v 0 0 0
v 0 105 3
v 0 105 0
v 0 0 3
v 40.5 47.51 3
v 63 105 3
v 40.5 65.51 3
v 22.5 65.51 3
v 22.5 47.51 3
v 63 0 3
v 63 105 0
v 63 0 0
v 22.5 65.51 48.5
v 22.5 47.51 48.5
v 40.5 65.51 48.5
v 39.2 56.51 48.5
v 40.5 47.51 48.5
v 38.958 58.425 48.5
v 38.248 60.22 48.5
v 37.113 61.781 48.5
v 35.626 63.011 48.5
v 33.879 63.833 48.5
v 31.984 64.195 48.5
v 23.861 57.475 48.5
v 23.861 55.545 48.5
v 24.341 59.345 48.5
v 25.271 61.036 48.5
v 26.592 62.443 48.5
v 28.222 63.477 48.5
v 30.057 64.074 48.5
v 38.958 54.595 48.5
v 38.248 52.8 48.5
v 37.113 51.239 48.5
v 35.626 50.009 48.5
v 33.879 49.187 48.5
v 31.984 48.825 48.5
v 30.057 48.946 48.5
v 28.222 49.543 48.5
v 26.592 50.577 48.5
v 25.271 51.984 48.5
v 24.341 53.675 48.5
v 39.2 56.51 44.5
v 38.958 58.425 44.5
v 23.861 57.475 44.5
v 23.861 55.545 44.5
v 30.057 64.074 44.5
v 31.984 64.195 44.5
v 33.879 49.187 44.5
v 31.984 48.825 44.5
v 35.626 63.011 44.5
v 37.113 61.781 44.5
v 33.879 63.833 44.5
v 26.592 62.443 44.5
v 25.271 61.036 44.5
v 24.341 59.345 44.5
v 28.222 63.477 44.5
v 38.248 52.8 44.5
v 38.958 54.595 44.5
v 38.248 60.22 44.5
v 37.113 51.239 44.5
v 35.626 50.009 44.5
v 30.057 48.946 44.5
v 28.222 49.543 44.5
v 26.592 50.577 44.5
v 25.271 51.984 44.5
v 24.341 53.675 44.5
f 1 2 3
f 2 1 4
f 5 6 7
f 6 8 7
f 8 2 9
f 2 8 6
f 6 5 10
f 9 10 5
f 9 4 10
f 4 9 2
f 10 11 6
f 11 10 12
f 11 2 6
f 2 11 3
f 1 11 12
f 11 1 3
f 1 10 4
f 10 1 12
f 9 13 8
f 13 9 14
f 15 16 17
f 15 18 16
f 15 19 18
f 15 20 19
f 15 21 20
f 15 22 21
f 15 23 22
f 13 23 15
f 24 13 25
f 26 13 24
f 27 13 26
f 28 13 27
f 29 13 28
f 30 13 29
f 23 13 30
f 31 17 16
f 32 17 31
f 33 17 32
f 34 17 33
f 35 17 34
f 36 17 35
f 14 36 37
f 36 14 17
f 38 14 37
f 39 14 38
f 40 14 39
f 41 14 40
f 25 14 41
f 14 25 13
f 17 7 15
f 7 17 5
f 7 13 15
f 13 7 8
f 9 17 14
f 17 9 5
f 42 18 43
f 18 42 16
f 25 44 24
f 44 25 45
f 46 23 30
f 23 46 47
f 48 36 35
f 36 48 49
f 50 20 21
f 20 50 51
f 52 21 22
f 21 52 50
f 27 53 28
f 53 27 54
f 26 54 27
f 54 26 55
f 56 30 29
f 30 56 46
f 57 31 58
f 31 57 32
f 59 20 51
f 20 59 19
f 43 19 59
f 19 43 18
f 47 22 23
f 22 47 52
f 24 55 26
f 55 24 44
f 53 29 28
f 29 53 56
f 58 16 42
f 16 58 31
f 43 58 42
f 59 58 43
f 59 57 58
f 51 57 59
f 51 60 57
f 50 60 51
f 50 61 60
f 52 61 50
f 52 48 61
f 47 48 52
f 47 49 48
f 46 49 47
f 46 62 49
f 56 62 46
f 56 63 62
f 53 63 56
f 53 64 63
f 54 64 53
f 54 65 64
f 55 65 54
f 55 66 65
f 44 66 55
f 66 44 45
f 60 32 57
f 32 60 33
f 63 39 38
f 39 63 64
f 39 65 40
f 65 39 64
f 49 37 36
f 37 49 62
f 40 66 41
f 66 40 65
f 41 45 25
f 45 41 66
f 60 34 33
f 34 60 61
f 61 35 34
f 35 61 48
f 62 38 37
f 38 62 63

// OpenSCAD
length = 63;
width = 105;
height = 3;

//Based on magnet size:
pillarSideLength = 18;
pillarSideOffset = .5;

magnetBaseInnerDiameter = 15.4;
magnetHeight = 4.0;

//inox guard x 6, 47.87 x 31.97, base 29.36
//bandit guard x 6, 36.67 x 27.75, base 24.43
//city guard x 6, 38.45 x 24.02, base 21.30
//single token 2.0

magnetOffset = 43.01;


spaceBetweenCircles = 2;
wallThickness = spaceBetweenCircles;
pillarHeight = 15 * 3 + .5 + height;

difference() {
union(){
    cube([length, width, height]);


//----------------------------------


            
//---------------------------------------------------------------------
    
          

//----------------------------------------
   
    translate([length/2 - ((pillarSideLength)/2), magnetOffset + wallThickness * 2 + pillarSideOffset, 0])
        cube([pillarSideLength, pillarSideLength, pillarHeight]);
        

}
    translate([length/2,  magnetOffset + wallThickness * 2 + magnetBaseInnerDiameter/2 + (pillarSideLength -magnetBaseInnerDiameter )/2 + pillarSideOffset, pillarHeight - magnetHeight])
        cylinder(magnetHeight, d=magnetBaseInnerDiameter);

}
